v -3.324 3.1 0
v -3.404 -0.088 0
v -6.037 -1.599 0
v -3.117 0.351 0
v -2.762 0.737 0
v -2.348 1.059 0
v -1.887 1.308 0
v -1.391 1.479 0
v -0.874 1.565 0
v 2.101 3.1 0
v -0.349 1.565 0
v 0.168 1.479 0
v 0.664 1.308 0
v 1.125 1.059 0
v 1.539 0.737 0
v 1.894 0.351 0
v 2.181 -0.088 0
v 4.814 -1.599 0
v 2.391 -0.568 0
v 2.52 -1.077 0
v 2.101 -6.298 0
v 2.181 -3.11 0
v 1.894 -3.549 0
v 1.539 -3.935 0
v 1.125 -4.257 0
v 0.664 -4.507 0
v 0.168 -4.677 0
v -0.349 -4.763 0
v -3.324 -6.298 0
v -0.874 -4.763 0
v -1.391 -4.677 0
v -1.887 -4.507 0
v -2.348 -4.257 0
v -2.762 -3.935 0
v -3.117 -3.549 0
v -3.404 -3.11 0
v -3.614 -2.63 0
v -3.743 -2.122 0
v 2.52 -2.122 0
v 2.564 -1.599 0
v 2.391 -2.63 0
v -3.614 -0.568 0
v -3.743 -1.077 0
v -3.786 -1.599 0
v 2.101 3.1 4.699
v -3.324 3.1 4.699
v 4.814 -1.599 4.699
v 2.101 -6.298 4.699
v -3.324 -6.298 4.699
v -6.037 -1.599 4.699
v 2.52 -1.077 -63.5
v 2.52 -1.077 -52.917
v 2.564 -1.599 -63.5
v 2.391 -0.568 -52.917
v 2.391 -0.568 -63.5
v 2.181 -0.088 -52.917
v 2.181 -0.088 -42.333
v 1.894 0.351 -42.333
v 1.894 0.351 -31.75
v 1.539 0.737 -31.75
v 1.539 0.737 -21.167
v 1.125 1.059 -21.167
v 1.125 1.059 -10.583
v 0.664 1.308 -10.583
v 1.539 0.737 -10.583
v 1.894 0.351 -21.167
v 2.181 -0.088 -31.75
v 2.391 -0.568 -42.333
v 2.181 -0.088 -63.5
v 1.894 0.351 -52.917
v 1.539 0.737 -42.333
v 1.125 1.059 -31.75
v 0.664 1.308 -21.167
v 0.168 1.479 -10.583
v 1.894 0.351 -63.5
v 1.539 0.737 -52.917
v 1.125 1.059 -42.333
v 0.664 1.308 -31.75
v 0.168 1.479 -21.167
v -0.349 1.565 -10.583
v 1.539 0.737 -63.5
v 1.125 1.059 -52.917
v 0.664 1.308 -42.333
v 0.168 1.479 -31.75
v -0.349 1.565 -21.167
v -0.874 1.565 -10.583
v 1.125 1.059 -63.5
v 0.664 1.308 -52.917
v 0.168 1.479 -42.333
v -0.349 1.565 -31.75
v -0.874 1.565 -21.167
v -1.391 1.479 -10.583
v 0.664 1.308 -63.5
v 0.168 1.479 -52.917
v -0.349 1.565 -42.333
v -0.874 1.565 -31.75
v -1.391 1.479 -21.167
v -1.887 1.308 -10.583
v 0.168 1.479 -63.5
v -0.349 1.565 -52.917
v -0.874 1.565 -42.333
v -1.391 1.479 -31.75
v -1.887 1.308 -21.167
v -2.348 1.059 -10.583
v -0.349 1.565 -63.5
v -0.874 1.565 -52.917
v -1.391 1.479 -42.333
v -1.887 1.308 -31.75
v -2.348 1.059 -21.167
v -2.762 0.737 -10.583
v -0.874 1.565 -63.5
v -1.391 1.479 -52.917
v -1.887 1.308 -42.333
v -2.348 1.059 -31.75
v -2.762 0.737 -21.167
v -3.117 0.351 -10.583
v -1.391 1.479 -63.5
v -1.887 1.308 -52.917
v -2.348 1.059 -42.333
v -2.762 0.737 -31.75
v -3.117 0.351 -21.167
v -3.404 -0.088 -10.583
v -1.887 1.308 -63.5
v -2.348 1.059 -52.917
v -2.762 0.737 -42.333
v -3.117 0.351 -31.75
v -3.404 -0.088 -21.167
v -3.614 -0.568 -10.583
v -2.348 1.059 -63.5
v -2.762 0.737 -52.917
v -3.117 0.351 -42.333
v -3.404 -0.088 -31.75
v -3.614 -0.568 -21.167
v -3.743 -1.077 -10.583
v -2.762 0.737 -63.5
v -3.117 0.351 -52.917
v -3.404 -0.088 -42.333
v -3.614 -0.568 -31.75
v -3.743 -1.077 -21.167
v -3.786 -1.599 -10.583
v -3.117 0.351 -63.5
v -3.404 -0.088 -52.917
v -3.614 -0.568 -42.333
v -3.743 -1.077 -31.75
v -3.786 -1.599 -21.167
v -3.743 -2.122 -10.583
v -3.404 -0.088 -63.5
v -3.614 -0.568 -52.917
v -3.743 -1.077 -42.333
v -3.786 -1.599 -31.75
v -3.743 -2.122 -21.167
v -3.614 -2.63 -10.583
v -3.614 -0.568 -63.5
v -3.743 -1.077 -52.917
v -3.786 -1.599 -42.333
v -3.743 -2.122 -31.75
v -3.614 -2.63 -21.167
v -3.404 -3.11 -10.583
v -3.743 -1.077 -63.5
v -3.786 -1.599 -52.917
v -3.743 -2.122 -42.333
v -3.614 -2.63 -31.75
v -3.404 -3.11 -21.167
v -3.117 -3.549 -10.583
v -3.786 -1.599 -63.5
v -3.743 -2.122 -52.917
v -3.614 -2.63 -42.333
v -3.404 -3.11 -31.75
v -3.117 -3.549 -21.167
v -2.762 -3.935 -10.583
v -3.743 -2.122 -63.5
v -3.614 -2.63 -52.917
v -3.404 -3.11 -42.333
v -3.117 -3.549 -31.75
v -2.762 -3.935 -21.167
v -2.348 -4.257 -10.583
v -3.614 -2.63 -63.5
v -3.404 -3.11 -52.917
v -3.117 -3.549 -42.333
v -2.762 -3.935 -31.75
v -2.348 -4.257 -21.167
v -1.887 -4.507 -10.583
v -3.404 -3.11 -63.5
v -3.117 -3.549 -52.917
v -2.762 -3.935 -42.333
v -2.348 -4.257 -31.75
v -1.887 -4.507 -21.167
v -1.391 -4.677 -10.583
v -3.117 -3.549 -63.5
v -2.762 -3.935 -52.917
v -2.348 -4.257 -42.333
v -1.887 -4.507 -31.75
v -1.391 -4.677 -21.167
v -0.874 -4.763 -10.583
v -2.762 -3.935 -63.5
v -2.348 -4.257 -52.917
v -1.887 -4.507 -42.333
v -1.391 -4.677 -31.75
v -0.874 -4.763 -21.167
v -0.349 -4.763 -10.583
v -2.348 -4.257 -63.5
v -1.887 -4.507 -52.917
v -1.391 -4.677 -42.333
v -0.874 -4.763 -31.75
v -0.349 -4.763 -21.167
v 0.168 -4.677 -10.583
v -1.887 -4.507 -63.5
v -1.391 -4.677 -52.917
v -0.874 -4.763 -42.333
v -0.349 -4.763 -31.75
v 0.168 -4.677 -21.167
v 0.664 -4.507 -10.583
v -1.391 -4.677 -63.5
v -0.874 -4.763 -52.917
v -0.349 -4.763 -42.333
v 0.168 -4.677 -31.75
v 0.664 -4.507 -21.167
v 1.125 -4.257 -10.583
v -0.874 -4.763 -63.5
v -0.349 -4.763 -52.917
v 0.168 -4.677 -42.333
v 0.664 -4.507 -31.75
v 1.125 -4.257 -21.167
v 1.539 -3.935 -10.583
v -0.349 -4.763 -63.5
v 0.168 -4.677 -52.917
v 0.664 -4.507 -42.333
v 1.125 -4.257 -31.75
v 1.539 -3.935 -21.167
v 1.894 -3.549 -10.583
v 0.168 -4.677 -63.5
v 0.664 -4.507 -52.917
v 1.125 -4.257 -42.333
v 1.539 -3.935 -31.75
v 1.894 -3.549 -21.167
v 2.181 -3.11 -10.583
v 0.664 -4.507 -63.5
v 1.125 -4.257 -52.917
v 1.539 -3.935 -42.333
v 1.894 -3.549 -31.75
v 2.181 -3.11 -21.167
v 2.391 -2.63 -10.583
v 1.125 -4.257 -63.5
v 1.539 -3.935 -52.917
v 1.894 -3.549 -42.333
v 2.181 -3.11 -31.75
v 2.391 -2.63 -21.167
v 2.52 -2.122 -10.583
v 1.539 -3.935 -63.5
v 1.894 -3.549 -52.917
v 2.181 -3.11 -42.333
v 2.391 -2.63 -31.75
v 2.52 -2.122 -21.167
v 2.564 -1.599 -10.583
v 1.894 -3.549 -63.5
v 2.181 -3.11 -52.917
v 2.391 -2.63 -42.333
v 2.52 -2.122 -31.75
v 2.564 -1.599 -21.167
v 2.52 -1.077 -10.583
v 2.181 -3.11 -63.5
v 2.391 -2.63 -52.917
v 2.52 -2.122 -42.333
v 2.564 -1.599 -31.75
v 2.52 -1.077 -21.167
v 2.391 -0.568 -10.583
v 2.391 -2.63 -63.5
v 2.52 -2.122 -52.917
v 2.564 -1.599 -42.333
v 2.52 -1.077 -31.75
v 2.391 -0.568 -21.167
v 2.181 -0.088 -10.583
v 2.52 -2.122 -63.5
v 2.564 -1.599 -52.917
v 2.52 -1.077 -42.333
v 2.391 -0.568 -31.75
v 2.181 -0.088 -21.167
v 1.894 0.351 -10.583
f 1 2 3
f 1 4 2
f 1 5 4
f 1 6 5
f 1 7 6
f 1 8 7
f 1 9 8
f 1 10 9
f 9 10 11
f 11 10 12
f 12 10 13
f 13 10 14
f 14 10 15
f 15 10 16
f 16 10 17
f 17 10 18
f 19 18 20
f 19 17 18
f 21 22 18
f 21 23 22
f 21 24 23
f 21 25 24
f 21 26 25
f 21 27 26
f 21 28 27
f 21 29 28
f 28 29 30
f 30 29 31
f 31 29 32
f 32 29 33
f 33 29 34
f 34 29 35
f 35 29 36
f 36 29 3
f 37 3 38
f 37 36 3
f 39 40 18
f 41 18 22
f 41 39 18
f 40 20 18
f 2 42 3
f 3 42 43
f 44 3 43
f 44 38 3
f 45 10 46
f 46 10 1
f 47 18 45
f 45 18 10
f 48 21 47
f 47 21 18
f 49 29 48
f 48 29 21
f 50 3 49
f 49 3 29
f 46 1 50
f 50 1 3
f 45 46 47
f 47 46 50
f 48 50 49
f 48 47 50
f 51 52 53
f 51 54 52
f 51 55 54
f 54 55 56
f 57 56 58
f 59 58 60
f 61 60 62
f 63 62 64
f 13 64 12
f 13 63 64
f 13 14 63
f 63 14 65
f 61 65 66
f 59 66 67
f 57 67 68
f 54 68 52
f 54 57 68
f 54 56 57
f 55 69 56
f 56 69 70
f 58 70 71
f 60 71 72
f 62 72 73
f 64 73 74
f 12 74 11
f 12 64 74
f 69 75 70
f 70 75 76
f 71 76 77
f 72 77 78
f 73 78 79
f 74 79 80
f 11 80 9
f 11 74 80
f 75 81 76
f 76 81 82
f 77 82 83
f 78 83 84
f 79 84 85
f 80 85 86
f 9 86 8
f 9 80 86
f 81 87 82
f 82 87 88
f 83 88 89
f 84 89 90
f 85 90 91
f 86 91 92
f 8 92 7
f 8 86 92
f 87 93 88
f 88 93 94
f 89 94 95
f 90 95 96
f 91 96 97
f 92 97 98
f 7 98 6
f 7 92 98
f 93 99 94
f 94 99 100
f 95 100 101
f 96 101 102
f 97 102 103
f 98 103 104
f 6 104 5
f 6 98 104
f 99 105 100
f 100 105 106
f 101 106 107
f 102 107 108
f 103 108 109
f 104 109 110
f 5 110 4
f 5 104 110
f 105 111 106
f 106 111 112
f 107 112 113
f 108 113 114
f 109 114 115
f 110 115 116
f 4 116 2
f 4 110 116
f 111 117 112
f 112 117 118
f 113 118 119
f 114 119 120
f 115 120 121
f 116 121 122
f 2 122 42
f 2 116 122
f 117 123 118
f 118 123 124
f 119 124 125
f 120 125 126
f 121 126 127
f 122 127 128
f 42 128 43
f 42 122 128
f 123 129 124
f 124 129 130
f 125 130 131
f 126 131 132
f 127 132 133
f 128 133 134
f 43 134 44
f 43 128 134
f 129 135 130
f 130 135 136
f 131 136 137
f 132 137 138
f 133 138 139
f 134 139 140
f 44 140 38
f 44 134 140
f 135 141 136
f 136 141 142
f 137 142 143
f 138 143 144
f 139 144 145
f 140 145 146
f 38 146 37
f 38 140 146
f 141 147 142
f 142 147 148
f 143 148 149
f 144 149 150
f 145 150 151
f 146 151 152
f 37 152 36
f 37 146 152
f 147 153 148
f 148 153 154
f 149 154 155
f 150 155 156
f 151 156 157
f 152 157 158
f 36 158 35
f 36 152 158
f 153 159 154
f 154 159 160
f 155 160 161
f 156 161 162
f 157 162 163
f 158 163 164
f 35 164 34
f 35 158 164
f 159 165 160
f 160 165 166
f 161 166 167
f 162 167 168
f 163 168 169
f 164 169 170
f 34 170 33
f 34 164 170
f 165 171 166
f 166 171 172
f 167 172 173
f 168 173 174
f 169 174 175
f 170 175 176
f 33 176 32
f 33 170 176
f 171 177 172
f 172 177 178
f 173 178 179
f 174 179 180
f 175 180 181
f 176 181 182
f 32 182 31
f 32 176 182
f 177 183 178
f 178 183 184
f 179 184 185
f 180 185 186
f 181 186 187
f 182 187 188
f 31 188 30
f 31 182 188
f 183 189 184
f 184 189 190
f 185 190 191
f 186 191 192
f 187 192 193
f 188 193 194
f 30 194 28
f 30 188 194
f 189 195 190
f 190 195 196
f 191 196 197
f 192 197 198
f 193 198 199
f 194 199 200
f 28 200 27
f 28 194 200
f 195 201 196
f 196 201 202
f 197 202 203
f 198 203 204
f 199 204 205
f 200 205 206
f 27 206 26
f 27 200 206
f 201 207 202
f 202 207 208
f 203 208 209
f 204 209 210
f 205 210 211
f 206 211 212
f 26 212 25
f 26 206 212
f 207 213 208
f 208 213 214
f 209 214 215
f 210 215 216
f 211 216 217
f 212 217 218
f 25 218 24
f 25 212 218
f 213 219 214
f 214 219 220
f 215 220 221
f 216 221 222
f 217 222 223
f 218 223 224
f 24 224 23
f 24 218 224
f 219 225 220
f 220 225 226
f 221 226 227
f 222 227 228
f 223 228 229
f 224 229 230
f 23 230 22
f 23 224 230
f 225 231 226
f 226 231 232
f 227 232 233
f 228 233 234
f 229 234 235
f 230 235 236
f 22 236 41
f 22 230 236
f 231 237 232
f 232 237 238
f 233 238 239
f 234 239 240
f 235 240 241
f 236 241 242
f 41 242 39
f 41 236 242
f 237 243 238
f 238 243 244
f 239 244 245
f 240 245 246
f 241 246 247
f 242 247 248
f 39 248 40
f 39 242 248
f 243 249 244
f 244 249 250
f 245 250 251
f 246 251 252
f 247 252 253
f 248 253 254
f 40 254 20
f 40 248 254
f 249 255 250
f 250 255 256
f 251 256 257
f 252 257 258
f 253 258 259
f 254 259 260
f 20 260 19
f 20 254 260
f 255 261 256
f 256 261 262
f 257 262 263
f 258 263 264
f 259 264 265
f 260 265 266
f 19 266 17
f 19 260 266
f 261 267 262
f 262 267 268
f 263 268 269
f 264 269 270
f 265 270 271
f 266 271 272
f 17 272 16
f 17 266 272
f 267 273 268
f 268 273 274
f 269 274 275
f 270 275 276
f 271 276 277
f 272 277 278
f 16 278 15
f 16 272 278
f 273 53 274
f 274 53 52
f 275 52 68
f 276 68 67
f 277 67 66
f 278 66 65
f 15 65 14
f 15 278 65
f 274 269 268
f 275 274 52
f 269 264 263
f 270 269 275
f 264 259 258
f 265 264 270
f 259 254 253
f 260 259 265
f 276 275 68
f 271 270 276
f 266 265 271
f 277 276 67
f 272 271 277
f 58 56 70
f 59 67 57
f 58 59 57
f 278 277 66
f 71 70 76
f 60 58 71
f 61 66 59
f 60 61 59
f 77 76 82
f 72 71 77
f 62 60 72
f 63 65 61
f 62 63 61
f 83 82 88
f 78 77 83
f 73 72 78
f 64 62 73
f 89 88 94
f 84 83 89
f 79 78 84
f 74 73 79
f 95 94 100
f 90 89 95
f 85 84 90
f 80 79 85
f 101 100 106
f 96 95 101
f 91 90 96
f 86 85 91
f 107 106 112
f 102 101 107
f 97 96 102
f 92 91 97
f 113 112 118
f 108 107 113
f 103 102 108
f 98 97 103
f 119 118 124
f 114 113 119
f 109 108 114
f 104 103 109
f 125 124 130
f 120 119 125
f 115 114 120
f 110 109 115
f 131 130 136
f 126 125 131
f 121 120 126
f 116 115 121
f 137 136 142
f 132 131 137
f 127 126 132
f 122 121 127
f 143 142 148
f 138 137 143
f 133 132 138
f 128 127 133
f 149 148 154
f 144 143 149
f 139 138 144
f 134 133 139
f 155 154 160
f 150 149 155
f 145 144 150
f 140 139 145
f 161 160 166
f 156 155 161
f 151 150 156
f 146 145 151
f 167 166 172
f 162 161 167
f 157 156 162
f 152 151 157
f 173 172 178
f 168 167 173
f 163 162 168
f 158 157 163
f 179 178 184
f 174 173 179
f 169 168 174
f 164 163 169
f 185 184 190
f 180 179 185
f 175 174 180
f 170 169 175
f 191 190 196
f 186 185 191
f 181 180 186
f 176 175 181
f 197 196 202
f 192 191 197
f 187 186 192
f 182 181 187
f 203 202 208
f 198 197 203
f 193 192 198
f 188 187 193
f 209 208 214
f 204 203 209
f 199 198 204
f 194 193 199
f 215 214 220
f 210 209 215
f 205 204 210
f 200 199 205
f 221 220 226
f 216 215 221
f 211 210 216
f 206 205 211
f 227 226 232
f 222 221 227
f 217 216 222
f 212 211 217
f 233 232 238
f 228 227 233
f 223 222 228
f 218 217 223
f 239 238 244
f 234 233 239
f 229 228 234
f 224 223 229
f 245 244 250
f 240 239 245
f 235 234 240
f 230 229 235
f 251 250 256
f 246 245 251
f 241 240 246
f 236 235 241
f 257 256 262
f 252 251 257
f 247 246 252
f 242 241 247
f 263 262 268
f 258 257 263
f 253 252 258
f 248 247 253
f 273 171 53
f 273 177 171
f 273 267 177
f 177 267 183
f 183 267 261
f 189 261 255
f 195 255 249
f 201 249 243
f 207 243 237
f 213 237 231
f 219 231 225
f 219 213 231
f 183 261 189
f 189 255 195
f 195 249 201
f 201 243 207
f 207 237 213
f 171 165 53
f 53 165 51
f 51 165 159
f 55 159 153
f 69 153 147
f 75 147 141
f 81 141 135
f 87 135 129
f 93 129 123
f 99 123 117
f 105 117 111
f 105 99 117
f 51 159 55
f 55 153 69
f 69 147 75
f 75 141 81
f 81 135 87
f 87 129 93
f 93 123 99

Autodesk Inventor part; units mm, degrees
ref_plane "YZ Plane" through (0, 0, 0) normal (1, 0, 0) x (0, 1, 0)
ref_plane "XZ Plane" through (0, 0, 0) normal (0, 1, 0) x (-1, 0, 0)
ref_plane "XY Plane" through (0, 0, 0) normal (0, 0, 1) x (1, 0, 0)
sketch "Sketch1" plane through (0, 0, 0) normal (0, 0, 1) x (1, 0, 0)
  circle A0 centre (-0.6115, -1.5992) radius 3.175
  line L0 (-6.0374, -1.5992) -> (-3.3244, 3.0998)
  line L1 (-3.3244, 3.0998) -> (2.1015, 3.0998)
  line L2 (2.1015, 3.0998) -> (4.8145, -1.5992)
  line L3 (4.8145, -1.5992) -> (2.1015, -6.2982)
  line L4 (2.1015, -6.2982) -> (-3.3244, -6.2982)
  line L5 (-3.3244, -6.2982) -> (-6.0374, -1.5992)
  dimension "d10" = 9.398
extrude "Extrusion1" add sketch "Sketch1" against normal blind 63.5 contours A0
extrude "Extrusion2" add sketch "Sketch1" along normal blind 4.699 contours A0 | L0 L1 L2 L3 L4 L5
thread "Thread1" size "1/4-20 UNC" class "2A" standard "ANSI Unified Screw Threads" length 25.4
properties part number "HW-00063"
